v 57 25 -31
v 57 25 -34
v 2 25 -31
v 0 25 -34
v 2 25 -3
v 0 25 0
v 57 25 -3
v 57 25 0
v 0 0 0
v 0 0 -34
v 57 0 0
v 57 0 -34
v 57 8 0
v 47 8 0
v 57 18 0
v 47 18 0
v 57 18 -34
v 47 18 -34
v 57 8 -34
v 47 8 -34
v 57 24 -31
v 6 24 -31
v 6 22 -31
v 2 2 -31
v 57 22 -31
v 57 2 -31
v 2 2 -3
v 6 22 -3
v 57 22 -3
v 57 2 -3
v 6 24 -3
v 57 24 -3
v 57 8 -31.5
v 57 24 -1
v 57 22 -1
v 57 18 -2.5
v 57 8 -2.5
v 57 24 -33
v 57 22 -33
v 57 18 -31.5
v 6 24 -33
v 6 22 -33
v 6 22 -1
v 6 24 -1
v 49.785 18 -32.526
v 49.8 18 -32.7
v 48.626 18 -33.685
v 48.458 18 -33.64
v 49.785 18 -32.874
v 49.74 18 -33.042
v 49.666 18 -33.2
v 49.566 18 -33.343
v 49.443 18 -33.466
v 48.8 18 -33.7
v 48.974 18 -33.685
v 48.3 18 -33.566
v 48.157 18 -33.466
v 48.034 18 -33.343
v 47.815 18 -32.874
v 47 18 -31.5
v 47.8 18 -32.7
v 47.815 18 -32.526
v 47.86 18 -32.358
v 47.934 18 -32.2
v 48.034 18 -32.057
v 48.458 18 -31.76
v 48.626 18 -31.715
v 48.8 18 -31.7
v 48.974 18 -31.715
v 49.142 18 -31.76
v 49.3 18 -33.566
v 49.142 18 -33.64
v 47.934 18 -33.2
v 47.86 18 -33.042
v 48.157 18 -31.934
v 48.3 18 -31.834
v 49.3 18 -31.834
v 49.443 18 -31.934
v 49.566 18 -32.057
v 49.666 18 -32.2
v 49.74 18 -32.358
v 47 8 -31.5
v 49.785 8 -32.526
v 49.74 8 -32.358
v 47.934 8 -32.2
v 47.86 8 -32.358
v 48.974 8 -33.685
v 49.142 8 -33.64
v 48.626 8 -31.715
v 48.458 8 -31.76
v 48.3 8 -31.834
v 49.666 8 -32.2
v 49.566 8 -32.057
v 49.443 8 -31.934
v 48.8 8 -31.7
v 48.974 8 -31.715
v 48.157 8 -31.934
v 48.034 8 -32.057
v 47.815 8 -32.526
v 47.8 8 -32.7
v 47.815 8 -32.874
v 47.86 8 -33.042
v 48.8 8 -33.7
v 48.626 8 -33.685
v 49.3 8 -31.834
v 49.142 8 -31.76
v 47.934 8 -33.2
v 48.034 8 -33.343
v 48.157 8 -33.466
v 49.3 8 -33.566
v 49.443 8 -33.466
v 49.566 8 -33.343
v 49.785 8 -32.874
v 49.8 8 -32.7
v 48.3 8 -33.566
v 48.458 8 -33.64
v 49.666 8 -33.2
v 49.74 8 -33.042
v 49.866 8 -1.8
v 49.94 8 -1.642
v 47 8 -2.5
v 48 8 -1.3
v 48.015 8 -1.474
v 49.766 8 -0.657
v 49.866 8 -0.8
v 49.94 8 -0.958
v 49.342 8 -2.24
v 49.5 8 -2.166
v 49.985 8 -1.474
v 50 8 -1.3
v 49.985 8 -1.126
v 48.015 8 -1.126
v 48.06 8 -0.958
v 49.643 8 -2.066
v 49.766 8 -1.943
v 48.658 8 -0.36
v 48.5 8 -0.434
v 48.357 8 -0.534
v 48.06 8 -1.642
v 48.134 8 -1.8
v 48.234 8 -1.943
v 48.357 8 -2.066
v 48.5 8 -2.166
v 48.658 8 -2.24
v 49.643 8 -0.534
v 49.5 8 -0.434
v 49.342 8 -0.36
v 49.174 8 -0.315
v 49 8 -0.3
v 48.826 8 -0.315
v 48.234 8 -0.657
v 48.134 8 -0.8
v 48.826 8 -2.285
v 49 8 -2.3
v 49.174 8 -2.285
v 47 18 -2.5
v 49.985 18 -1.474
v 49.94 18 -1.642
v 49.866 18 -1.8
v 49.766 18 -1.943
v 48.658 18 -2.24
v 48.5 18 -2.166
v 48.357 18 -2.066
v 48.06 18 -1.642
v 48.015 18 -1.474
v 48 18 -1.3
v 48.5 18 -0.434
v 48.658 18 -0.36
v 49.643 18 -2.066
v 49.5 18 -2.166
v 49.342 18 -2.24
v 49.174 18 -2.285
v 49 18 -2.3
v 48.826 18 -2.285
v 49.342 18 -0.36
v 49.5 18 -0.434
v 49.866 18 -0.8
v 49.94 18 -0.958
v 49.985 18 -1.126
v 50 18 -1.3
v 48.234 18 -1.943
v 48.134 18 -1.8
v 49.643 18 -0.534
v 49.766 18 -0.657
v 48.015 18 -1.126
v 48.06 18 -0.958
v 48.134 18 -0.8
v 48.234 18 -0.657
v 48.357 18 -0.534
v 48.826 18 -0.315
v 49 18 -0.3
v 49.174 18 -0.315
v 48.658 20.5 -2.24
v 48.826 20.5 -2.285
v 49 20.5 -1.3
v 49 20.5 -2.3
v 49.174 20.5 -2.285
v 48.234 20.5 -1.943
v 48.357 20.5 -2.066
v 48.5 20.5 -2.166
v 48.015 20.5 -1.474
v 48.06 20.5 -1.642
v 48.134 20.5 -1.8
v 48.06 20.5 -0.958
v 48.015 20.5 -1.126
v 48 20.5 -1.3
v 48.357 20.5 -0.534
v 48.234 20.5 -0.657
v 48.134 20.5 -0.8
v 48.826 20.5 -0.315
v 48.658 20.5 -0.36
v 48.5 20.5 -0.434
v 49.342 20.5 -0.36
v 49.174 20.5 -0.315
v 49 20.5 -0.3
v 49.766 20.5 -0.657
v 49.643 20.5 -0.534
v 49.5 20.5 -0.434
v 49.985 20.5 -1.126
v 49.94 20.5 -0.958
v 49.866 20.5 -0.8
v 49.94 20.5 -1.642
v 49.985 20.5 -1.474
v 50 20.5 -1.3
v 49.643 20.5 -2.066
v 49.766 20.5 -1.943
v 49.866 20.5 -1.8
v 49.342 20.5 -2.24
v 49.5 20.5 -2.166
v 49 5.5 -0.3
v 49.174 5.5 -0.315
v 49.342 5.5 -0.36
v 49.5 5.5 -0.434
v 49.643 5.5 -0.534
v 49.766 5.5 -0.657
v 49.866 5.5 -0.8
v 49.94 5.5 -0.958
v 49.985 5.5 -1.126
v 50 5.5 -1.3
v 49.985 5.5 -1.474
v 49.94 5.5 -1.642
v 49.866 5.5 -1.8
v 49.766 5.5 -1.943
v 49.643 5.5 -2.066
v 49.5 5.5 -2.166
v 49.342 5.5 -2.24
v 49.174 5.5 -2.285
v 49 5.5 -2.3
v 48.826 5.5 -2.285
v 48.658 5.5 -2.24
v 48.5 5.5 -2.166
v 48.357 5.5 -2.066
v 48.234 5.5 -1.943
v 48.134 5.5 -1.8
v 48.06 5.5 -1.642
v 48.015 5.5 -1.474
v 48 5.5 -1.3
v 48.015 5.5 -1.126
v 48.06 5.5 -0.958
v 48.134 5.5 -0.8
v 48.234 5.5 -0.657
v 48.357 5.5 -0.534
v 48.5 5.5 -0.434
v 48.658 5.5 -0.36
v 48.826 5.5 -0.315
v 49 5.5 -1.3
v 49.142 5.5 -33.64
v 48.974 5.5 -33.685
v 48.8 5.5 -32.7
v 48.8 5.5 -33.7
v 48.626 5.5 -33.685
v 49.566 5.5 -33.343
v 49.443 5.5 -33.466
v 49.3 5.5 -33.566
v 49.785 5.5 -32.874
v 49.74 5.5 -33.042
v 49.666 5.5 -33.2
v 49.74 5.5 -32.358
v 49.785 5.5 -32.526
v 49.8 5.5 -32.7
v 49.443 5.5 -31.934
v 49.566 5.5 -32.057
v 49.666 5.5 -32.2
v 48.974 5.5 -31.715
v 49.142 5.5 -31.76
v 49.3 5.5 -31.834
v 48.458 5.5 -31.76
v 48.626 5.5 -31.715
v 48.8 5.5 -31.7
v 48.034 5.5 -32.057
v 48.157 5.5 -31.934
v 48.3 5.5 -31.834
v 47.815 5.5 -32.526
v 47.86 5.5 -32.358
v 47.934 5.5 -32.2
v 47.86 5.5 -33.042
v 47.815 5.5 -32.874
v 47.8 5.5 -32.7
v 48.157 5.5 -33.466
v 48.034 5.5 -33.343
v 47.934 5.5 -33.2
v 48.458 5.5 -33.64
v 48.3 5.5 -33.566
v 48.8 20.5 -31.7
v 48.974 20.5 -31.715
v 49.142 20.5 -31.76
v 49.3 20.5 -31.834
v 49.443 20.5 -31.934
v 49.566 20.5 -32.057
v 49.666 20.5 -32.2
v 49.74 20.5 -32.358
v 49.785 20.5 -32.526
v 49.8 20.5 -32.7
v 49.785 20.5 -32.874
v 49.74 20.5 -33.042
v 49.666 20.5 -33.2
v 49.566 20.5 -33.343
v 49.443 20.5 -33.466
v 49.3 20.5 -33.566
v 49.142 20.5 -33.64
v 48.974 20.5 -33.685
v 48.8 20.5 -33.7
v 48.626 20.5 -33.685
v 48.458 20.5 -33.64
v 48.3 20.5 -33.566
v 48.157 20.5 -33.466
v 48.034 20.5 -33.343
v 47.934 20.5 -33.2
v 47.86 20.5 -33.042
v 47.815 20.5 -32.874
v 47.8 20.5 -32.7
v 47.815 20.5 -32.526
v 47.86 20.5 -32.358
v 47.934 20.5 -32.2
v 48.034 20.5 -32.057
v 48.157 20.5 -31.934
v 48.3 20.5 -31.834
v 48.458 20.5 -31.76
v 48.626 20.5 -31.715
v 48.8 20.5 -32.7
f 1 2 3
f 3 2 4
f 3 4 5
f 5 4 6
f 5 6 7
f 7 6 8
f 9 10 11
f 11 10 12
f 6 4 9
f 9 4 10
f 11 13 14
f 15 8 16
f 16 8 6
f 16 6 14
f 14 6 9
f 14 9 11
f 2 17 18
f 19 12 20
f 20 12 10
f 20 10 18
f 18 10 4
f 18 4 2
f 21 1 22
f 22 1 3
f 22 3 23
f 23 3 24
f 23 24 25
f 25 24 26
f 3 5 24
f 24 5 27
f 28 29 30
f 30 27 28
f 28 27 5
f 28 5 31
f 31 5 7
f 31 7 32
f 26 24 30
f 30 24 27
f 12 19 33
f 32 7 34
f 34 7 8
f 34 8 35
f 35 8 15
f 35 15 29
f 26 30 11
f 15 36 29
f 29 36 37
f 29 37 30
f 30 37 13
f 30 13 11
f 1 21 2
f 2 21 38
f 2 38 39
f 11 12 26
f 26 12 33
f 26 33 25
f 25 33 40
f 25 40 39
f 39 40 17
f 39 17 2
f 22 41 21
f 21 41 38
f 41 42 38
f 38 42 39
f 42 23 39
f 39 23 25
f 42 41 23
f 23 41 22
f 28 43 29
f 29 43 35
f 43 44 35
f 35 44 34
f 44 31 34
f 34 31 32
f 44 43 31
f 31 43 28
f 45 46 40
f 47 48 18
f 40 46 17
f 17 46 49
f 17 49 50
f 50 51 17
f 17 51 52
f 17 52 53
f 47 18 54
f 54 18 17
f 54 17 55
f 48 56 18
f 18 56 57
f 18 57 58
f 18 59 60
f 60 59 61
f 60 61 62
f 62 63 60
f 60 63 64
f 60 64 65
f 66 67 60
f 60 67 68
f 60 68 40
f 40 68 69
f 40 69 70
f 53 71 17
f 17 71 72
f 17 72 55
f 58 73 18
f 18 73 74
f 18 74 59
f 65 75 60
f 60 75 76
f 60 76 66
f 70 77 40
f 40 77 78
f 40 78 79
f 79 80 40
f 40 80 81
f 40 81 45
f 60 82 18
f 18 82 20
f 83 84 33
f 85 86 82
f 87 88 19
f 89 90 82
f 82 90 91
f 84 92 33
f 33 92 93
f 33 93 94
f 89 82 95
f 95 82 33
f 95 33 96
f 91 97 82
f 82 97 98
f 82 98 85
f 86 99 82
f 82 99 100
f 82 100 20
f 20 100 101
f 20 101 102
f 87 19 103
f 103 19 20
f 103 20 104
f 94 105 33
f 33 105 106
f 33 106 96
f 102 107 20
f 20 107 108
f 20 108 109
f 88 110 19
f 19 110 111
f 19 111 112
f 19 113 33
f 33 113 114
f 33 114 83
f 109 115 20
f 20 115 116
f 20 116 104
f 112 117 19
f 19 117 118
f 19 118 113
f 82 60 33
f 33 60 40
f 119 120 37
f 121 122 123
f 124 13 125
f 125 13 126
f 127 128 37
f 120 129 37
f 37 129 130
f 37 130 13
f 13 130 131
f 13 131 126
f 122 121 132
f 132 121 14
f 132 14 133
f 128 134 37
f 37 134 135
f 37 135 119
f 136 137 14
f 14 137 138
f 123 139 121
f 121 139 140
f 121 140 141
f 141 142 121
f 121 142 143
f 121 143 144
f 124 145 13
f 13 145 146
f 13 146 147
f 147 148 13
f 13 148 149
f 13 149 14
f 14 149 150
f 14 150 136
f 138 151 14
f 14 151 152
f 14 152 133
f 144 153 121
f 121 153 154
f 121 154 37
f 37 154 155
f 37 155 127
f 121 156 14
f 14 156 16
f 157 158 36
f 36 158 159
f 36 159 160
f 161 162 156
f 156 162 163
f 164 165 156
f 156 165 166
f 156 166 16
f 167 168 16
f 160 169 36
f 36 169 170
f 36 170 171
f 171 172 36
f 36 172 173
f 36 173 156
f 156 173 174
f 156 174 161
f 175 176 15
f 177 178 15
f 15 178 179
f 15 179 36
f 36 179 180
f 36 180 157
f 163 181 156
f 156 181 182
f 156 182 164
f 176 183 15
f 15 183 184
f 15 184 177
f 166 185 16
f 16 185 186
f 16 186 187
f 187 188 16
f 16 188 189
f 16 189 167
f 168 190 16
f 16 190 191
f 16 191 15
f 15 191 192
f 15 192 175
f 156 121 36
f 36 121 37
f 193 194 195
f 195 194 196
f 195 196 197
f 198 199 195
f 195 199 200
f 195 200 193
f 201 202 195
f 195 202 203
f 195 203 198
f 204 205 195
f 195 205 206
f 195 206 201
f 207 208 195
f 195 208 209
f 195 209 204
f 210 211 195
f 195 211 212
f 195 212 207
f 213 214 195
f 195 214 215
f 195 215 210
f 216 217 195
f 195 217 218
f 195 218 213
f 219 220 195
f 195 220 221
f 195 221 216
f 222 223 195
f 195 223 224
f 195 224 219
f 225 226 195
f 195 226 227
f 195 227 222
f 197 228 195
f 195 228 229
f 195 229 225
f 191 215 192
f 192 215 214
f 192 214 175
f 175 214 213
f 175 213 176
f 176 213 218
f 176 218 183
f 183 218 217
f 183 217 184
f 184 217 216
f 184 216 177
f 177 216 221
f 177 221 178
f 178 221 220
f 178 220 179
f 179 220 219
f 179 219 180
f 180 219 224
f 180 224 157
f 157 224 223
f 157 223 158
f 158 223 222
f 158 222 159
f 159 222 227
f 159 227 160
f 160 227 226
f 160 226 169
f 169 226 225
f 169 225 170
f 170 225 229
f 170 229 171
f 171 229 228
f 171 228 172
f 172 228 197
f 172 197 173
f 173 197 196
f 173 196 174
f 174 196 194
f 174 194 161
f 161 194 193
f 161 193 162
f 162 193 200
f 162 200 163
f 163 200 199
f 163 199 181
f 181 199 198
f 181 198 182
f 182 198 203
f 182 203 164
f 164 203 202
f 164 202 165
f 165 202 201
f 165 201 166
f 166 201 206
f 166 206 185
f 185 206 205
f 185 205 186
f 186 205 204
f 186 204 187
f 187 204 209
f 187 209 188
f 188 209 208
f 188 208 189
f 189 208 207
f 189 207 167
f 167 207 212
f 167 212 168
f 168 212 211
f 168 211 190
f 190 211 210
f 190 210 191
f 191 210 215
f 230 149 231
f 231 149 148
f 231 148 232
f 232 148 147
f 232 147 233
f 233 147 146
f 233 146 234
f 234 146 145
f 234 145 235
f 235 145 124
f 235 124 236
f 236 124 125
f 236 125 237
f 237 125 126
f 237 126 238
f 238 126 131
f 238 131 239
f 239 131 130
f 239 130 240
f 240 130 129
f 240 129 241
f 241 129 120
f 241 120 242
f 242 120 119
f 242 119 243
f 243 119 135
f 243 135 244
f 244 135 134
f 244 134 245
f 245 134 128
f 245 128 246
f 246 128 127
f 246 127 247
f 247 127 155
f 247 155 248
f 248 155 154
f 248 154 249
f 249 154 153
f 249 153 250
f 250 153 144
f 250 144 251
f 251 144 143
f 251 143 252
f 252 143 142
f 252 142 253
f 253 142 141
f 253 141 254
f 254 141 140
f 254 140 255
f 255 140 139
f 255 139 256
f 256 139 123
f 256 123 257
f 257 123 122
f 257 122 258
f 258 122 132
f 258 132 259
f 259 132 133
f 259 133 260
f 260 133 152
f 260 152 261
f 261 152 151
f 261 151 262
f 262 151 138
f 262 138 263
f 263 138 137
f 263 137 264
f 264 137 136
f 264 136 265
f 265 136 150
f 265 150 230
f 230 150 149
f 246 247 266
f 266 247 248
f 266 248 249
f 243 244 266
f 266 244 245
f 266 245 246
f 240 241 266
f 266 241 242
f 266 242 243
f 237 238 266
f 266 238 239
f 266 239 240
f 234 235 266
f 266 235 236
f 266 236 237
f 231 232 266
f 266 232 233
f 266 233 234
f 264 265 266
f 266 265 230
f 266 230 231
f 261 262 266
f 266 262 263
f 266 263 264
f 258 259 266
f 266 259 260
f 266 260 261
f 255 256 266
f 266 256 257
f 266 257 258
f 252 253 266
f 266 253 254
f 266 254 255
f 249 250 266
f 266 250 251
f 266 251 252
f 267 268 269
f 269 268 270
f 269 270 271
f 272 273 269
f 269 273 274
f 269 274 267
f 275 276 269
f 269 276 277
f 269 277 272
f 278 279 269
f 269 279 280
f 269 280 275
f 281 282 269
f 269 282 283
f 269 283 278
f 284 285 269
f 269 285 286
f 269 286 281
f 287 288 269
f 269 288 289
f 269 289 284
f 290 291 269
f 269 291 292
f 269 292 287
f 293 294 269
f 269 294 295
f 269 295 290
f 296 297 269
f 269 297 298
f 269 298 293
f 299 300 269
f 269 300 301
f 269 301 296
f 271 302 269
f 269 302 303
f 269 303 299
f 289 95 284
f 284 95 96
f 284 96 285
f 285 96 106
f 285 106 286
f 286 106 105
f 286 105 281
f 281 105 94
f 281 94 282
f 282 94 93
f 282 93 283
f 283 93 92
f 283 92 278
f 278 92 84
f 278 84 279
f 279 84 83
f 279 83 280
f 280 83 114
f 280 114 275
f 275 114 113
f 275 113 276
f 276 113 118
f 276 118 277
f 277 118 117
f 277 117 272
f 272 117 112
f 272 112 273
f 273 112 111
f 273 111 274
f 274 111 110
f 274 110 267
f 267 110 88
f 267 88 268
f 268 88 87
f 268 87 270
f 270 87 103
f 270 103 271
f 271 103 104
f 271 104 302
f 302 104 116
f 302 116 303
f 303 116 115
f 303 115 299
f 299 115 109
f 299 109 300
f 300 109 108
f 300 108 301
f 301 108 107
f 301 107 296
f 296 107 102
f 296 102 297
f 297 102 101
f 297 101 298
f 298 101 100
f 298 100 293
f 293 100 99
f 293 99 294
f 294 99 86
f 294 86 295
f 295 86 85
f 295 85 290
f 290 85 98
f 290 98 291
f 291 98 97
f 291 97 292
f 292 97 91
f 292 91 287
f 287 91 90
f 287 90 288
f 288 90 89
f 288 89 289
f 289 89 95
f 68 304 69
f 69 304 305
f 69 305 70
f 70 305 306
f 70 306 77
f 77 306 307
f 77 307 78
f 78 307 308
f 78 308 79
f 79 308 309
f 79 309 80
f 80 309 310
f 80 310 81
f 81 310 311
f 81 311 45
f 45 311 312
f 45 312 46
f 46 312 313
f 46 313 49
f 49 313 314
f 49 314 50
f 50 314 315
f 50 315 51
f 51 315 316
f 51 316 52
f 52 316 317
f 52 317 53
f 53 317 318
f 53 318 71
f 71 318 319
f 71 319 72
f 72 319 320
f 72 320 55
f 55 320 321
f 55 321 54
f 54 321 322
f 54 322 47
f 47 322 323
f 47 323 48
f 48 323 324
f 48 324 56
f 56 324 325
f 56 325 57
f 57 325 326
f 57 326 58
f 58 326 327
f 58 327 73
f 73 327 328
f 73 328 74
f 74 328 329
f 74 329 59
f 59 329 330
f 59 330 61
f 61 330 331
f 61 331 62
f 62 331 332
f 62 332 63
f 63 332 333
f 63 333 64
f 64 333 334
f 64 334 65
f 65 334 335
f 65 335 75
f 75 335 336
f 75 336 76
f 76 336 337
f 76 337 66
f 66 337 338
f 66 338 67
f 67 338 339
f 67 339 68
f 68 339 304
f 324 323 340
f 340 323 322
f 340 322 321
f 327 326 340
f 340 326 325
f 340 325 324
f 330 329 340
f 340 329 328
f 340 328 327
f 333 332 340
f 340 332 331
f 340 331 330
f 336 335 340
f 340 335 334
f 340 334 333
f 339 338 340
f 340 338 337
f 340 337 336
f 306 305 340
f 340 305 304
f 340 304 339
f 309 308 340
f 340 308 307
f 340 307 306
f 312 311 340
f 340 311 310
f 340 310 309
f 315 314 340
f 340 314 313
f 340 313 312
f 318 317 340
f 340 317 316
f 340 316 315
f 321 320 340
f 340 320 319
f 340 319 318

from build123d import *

# Parameters (mm, degrees)
SKETCH1_W                = 59
SKETCH1_H                = 34
SKETCH1_W_2              = 55
SKETCH1_H_2              = 28
BOSS_EXTRUDE1_DEPTH      = 25
SKETCH1_2_W              = 55
SKETCH1_2_H              = 28
BOSS_EXTRUDE2_DEPTH      = 2
SKETCH2_W                = 2
SKETCH2_H                = 34
CUT_EXTRUDE1_DEPTH       = 25
SKETCH5_W                = 2
SKETCH5_H                = 2
CUT_EXTRUDE4_DEPTH       = 51
SKETCH9_W                = 10
SKETCH9_H                = 10
CUT_EXTRUDE7_DEPTH       = 2.5
SKETCH10_W               = 10
SKETCH10_H               = 10
CUT_EXTRUDE8_DEPTH       = 2.5
CUT_EXTRUDE9_DEPTH       = 12.5
CUT_EXTRUDE9_DEPTH_BACK  = 2.5
SKETCH11_R               = 1
CUT_EXTRUDE10_DEPTH      = 12.5
CUT_EXTRUDE10_DEPTH_BACK = 2.5
SKETCH12_R               = 1


with BuildPart() as part:
    # Sketch1 → Boss-Extrude1 (new body)
    with BuildSketch(Plane(origin=(0, 0, 0), x_dir=(1, 0, 0), z_dir=(0, 1, 0))):
        with Locations((29.5, 17)):
            Rectangle(SKETCH1_W, SKETCH1_H)
        with Locations((29.5, 17)):
            Rectangle(SKETCH1_W_2, SKETCH1_H_2, mode=Mode.SUBTRACT)
    extrude(amount=BOSS_EXTRUDE1_DEPTH)

    # Sketch1<2> → Boss-Extrude2 (add)
    with BuildSketch(Plane(origin=(0, 0, 0), x_dir=(1, 0, 0), z_dir=(0, 1, 0))):
        with Locations((29.5, 17)):
            Rectangle(SKETCH1_2_W, SKETCH1_2_H)
    extrude(amount=BOSS_EXTRUDE2_DEPTH)

    # Sketch2 → Cut-Extrude1 (cut)
    with BuildSketch(Plane(origin=(0, 25, 0), x_dir=(1, 0, 0), z_dir=(0, 1, 0))):
        with Locations((58, 17)):
            Rectangle(SKETCH2_W, SKETCH2_H)
    extrude(amount=-CUT_EXTRUDE1_DEPTH, mode=Mode.SUBTRACT)

    # Sketch5 → Cut-Extrude4 (cut)
    with BuildSketch(Plane(origin=(57, 0, 0), x_dir=(0, 0, -1), z_dir=(1, 0, 0))):
        with Locations((2, 23)):
            Rectangle(SKETCH5_W, SKETCH5_H)
        with Locations((32, 23)):
            Rectangle(SKETCH5_W, SKETCH5_H)
    extrude(amount=-CUT_EXTRUDE4_DEPTH, mode=Mode.SUBTRACT)

    # Sketch9 → Cut-Extrude7 (cut)
    with BuildSketch(Plane(origin=(0, 0, -34), x_dir=(-1, 0, 0), z_dir=(0, 0, -1))):
        with Locations((-52, 13)):
            Rectangle(SKETCH9_W, SKETCH9_H)
    extrude(amount=-CUT_EXTRUDE7_DEPTH, mode=Mode.SUBTRACT)

    # Sketch10 → Cut-Extrude8 (cut)
    with BuildSketch(Plane.XY):
        with Locations((52, 13)):
            Rectangle(SKETCH10_W, SKETCH10_H)
    extrude(amount=-CUT_EXTRUDE8_DEPTH, mode=Mode.SUBTRACT)

    # Sketch11 → Cut-Extrude9 (cut, two sides: drawn at the far end of the back side and taken through both)
    with BuildSketch(Plane(origin=(0, 18, 0), x_dir=(-1, 0, 0), z_dir=(0, -1, 0)).offset(-CUT_EXTRUDE9_DEPTH_BACK)):
        with Locations((-49, 1.3)):
            Circle(SKETCH11_R)
    extrude(amount=CUT_EXTRUDE9_DEPTH + CUT_EXTRUDE9_DEPTH_BACK, mode=Mode.SUBTRACT)

    # Sketch12 → Cut-Extrude10 (cut, two sides: drawn at the far end of the back side and taken through both)
    with BuildSketch(Plane(origin=(0, 18, 0), x_dir=(-1, 0, 0), z_dir=(0, -1, 0)).offset(-CUT_EXTRUDE10_DEPTH_BACK)):
        with Locations((-48.8, 32.7)):
            Circle(SKETCH12_R)
    extrude(amount=CUT_EXTRUDE10_DEPTH + CUT_EXTRUDE10_DEPTH_BACK, mode=Mode.SUBTRACT)


solid = part.part
